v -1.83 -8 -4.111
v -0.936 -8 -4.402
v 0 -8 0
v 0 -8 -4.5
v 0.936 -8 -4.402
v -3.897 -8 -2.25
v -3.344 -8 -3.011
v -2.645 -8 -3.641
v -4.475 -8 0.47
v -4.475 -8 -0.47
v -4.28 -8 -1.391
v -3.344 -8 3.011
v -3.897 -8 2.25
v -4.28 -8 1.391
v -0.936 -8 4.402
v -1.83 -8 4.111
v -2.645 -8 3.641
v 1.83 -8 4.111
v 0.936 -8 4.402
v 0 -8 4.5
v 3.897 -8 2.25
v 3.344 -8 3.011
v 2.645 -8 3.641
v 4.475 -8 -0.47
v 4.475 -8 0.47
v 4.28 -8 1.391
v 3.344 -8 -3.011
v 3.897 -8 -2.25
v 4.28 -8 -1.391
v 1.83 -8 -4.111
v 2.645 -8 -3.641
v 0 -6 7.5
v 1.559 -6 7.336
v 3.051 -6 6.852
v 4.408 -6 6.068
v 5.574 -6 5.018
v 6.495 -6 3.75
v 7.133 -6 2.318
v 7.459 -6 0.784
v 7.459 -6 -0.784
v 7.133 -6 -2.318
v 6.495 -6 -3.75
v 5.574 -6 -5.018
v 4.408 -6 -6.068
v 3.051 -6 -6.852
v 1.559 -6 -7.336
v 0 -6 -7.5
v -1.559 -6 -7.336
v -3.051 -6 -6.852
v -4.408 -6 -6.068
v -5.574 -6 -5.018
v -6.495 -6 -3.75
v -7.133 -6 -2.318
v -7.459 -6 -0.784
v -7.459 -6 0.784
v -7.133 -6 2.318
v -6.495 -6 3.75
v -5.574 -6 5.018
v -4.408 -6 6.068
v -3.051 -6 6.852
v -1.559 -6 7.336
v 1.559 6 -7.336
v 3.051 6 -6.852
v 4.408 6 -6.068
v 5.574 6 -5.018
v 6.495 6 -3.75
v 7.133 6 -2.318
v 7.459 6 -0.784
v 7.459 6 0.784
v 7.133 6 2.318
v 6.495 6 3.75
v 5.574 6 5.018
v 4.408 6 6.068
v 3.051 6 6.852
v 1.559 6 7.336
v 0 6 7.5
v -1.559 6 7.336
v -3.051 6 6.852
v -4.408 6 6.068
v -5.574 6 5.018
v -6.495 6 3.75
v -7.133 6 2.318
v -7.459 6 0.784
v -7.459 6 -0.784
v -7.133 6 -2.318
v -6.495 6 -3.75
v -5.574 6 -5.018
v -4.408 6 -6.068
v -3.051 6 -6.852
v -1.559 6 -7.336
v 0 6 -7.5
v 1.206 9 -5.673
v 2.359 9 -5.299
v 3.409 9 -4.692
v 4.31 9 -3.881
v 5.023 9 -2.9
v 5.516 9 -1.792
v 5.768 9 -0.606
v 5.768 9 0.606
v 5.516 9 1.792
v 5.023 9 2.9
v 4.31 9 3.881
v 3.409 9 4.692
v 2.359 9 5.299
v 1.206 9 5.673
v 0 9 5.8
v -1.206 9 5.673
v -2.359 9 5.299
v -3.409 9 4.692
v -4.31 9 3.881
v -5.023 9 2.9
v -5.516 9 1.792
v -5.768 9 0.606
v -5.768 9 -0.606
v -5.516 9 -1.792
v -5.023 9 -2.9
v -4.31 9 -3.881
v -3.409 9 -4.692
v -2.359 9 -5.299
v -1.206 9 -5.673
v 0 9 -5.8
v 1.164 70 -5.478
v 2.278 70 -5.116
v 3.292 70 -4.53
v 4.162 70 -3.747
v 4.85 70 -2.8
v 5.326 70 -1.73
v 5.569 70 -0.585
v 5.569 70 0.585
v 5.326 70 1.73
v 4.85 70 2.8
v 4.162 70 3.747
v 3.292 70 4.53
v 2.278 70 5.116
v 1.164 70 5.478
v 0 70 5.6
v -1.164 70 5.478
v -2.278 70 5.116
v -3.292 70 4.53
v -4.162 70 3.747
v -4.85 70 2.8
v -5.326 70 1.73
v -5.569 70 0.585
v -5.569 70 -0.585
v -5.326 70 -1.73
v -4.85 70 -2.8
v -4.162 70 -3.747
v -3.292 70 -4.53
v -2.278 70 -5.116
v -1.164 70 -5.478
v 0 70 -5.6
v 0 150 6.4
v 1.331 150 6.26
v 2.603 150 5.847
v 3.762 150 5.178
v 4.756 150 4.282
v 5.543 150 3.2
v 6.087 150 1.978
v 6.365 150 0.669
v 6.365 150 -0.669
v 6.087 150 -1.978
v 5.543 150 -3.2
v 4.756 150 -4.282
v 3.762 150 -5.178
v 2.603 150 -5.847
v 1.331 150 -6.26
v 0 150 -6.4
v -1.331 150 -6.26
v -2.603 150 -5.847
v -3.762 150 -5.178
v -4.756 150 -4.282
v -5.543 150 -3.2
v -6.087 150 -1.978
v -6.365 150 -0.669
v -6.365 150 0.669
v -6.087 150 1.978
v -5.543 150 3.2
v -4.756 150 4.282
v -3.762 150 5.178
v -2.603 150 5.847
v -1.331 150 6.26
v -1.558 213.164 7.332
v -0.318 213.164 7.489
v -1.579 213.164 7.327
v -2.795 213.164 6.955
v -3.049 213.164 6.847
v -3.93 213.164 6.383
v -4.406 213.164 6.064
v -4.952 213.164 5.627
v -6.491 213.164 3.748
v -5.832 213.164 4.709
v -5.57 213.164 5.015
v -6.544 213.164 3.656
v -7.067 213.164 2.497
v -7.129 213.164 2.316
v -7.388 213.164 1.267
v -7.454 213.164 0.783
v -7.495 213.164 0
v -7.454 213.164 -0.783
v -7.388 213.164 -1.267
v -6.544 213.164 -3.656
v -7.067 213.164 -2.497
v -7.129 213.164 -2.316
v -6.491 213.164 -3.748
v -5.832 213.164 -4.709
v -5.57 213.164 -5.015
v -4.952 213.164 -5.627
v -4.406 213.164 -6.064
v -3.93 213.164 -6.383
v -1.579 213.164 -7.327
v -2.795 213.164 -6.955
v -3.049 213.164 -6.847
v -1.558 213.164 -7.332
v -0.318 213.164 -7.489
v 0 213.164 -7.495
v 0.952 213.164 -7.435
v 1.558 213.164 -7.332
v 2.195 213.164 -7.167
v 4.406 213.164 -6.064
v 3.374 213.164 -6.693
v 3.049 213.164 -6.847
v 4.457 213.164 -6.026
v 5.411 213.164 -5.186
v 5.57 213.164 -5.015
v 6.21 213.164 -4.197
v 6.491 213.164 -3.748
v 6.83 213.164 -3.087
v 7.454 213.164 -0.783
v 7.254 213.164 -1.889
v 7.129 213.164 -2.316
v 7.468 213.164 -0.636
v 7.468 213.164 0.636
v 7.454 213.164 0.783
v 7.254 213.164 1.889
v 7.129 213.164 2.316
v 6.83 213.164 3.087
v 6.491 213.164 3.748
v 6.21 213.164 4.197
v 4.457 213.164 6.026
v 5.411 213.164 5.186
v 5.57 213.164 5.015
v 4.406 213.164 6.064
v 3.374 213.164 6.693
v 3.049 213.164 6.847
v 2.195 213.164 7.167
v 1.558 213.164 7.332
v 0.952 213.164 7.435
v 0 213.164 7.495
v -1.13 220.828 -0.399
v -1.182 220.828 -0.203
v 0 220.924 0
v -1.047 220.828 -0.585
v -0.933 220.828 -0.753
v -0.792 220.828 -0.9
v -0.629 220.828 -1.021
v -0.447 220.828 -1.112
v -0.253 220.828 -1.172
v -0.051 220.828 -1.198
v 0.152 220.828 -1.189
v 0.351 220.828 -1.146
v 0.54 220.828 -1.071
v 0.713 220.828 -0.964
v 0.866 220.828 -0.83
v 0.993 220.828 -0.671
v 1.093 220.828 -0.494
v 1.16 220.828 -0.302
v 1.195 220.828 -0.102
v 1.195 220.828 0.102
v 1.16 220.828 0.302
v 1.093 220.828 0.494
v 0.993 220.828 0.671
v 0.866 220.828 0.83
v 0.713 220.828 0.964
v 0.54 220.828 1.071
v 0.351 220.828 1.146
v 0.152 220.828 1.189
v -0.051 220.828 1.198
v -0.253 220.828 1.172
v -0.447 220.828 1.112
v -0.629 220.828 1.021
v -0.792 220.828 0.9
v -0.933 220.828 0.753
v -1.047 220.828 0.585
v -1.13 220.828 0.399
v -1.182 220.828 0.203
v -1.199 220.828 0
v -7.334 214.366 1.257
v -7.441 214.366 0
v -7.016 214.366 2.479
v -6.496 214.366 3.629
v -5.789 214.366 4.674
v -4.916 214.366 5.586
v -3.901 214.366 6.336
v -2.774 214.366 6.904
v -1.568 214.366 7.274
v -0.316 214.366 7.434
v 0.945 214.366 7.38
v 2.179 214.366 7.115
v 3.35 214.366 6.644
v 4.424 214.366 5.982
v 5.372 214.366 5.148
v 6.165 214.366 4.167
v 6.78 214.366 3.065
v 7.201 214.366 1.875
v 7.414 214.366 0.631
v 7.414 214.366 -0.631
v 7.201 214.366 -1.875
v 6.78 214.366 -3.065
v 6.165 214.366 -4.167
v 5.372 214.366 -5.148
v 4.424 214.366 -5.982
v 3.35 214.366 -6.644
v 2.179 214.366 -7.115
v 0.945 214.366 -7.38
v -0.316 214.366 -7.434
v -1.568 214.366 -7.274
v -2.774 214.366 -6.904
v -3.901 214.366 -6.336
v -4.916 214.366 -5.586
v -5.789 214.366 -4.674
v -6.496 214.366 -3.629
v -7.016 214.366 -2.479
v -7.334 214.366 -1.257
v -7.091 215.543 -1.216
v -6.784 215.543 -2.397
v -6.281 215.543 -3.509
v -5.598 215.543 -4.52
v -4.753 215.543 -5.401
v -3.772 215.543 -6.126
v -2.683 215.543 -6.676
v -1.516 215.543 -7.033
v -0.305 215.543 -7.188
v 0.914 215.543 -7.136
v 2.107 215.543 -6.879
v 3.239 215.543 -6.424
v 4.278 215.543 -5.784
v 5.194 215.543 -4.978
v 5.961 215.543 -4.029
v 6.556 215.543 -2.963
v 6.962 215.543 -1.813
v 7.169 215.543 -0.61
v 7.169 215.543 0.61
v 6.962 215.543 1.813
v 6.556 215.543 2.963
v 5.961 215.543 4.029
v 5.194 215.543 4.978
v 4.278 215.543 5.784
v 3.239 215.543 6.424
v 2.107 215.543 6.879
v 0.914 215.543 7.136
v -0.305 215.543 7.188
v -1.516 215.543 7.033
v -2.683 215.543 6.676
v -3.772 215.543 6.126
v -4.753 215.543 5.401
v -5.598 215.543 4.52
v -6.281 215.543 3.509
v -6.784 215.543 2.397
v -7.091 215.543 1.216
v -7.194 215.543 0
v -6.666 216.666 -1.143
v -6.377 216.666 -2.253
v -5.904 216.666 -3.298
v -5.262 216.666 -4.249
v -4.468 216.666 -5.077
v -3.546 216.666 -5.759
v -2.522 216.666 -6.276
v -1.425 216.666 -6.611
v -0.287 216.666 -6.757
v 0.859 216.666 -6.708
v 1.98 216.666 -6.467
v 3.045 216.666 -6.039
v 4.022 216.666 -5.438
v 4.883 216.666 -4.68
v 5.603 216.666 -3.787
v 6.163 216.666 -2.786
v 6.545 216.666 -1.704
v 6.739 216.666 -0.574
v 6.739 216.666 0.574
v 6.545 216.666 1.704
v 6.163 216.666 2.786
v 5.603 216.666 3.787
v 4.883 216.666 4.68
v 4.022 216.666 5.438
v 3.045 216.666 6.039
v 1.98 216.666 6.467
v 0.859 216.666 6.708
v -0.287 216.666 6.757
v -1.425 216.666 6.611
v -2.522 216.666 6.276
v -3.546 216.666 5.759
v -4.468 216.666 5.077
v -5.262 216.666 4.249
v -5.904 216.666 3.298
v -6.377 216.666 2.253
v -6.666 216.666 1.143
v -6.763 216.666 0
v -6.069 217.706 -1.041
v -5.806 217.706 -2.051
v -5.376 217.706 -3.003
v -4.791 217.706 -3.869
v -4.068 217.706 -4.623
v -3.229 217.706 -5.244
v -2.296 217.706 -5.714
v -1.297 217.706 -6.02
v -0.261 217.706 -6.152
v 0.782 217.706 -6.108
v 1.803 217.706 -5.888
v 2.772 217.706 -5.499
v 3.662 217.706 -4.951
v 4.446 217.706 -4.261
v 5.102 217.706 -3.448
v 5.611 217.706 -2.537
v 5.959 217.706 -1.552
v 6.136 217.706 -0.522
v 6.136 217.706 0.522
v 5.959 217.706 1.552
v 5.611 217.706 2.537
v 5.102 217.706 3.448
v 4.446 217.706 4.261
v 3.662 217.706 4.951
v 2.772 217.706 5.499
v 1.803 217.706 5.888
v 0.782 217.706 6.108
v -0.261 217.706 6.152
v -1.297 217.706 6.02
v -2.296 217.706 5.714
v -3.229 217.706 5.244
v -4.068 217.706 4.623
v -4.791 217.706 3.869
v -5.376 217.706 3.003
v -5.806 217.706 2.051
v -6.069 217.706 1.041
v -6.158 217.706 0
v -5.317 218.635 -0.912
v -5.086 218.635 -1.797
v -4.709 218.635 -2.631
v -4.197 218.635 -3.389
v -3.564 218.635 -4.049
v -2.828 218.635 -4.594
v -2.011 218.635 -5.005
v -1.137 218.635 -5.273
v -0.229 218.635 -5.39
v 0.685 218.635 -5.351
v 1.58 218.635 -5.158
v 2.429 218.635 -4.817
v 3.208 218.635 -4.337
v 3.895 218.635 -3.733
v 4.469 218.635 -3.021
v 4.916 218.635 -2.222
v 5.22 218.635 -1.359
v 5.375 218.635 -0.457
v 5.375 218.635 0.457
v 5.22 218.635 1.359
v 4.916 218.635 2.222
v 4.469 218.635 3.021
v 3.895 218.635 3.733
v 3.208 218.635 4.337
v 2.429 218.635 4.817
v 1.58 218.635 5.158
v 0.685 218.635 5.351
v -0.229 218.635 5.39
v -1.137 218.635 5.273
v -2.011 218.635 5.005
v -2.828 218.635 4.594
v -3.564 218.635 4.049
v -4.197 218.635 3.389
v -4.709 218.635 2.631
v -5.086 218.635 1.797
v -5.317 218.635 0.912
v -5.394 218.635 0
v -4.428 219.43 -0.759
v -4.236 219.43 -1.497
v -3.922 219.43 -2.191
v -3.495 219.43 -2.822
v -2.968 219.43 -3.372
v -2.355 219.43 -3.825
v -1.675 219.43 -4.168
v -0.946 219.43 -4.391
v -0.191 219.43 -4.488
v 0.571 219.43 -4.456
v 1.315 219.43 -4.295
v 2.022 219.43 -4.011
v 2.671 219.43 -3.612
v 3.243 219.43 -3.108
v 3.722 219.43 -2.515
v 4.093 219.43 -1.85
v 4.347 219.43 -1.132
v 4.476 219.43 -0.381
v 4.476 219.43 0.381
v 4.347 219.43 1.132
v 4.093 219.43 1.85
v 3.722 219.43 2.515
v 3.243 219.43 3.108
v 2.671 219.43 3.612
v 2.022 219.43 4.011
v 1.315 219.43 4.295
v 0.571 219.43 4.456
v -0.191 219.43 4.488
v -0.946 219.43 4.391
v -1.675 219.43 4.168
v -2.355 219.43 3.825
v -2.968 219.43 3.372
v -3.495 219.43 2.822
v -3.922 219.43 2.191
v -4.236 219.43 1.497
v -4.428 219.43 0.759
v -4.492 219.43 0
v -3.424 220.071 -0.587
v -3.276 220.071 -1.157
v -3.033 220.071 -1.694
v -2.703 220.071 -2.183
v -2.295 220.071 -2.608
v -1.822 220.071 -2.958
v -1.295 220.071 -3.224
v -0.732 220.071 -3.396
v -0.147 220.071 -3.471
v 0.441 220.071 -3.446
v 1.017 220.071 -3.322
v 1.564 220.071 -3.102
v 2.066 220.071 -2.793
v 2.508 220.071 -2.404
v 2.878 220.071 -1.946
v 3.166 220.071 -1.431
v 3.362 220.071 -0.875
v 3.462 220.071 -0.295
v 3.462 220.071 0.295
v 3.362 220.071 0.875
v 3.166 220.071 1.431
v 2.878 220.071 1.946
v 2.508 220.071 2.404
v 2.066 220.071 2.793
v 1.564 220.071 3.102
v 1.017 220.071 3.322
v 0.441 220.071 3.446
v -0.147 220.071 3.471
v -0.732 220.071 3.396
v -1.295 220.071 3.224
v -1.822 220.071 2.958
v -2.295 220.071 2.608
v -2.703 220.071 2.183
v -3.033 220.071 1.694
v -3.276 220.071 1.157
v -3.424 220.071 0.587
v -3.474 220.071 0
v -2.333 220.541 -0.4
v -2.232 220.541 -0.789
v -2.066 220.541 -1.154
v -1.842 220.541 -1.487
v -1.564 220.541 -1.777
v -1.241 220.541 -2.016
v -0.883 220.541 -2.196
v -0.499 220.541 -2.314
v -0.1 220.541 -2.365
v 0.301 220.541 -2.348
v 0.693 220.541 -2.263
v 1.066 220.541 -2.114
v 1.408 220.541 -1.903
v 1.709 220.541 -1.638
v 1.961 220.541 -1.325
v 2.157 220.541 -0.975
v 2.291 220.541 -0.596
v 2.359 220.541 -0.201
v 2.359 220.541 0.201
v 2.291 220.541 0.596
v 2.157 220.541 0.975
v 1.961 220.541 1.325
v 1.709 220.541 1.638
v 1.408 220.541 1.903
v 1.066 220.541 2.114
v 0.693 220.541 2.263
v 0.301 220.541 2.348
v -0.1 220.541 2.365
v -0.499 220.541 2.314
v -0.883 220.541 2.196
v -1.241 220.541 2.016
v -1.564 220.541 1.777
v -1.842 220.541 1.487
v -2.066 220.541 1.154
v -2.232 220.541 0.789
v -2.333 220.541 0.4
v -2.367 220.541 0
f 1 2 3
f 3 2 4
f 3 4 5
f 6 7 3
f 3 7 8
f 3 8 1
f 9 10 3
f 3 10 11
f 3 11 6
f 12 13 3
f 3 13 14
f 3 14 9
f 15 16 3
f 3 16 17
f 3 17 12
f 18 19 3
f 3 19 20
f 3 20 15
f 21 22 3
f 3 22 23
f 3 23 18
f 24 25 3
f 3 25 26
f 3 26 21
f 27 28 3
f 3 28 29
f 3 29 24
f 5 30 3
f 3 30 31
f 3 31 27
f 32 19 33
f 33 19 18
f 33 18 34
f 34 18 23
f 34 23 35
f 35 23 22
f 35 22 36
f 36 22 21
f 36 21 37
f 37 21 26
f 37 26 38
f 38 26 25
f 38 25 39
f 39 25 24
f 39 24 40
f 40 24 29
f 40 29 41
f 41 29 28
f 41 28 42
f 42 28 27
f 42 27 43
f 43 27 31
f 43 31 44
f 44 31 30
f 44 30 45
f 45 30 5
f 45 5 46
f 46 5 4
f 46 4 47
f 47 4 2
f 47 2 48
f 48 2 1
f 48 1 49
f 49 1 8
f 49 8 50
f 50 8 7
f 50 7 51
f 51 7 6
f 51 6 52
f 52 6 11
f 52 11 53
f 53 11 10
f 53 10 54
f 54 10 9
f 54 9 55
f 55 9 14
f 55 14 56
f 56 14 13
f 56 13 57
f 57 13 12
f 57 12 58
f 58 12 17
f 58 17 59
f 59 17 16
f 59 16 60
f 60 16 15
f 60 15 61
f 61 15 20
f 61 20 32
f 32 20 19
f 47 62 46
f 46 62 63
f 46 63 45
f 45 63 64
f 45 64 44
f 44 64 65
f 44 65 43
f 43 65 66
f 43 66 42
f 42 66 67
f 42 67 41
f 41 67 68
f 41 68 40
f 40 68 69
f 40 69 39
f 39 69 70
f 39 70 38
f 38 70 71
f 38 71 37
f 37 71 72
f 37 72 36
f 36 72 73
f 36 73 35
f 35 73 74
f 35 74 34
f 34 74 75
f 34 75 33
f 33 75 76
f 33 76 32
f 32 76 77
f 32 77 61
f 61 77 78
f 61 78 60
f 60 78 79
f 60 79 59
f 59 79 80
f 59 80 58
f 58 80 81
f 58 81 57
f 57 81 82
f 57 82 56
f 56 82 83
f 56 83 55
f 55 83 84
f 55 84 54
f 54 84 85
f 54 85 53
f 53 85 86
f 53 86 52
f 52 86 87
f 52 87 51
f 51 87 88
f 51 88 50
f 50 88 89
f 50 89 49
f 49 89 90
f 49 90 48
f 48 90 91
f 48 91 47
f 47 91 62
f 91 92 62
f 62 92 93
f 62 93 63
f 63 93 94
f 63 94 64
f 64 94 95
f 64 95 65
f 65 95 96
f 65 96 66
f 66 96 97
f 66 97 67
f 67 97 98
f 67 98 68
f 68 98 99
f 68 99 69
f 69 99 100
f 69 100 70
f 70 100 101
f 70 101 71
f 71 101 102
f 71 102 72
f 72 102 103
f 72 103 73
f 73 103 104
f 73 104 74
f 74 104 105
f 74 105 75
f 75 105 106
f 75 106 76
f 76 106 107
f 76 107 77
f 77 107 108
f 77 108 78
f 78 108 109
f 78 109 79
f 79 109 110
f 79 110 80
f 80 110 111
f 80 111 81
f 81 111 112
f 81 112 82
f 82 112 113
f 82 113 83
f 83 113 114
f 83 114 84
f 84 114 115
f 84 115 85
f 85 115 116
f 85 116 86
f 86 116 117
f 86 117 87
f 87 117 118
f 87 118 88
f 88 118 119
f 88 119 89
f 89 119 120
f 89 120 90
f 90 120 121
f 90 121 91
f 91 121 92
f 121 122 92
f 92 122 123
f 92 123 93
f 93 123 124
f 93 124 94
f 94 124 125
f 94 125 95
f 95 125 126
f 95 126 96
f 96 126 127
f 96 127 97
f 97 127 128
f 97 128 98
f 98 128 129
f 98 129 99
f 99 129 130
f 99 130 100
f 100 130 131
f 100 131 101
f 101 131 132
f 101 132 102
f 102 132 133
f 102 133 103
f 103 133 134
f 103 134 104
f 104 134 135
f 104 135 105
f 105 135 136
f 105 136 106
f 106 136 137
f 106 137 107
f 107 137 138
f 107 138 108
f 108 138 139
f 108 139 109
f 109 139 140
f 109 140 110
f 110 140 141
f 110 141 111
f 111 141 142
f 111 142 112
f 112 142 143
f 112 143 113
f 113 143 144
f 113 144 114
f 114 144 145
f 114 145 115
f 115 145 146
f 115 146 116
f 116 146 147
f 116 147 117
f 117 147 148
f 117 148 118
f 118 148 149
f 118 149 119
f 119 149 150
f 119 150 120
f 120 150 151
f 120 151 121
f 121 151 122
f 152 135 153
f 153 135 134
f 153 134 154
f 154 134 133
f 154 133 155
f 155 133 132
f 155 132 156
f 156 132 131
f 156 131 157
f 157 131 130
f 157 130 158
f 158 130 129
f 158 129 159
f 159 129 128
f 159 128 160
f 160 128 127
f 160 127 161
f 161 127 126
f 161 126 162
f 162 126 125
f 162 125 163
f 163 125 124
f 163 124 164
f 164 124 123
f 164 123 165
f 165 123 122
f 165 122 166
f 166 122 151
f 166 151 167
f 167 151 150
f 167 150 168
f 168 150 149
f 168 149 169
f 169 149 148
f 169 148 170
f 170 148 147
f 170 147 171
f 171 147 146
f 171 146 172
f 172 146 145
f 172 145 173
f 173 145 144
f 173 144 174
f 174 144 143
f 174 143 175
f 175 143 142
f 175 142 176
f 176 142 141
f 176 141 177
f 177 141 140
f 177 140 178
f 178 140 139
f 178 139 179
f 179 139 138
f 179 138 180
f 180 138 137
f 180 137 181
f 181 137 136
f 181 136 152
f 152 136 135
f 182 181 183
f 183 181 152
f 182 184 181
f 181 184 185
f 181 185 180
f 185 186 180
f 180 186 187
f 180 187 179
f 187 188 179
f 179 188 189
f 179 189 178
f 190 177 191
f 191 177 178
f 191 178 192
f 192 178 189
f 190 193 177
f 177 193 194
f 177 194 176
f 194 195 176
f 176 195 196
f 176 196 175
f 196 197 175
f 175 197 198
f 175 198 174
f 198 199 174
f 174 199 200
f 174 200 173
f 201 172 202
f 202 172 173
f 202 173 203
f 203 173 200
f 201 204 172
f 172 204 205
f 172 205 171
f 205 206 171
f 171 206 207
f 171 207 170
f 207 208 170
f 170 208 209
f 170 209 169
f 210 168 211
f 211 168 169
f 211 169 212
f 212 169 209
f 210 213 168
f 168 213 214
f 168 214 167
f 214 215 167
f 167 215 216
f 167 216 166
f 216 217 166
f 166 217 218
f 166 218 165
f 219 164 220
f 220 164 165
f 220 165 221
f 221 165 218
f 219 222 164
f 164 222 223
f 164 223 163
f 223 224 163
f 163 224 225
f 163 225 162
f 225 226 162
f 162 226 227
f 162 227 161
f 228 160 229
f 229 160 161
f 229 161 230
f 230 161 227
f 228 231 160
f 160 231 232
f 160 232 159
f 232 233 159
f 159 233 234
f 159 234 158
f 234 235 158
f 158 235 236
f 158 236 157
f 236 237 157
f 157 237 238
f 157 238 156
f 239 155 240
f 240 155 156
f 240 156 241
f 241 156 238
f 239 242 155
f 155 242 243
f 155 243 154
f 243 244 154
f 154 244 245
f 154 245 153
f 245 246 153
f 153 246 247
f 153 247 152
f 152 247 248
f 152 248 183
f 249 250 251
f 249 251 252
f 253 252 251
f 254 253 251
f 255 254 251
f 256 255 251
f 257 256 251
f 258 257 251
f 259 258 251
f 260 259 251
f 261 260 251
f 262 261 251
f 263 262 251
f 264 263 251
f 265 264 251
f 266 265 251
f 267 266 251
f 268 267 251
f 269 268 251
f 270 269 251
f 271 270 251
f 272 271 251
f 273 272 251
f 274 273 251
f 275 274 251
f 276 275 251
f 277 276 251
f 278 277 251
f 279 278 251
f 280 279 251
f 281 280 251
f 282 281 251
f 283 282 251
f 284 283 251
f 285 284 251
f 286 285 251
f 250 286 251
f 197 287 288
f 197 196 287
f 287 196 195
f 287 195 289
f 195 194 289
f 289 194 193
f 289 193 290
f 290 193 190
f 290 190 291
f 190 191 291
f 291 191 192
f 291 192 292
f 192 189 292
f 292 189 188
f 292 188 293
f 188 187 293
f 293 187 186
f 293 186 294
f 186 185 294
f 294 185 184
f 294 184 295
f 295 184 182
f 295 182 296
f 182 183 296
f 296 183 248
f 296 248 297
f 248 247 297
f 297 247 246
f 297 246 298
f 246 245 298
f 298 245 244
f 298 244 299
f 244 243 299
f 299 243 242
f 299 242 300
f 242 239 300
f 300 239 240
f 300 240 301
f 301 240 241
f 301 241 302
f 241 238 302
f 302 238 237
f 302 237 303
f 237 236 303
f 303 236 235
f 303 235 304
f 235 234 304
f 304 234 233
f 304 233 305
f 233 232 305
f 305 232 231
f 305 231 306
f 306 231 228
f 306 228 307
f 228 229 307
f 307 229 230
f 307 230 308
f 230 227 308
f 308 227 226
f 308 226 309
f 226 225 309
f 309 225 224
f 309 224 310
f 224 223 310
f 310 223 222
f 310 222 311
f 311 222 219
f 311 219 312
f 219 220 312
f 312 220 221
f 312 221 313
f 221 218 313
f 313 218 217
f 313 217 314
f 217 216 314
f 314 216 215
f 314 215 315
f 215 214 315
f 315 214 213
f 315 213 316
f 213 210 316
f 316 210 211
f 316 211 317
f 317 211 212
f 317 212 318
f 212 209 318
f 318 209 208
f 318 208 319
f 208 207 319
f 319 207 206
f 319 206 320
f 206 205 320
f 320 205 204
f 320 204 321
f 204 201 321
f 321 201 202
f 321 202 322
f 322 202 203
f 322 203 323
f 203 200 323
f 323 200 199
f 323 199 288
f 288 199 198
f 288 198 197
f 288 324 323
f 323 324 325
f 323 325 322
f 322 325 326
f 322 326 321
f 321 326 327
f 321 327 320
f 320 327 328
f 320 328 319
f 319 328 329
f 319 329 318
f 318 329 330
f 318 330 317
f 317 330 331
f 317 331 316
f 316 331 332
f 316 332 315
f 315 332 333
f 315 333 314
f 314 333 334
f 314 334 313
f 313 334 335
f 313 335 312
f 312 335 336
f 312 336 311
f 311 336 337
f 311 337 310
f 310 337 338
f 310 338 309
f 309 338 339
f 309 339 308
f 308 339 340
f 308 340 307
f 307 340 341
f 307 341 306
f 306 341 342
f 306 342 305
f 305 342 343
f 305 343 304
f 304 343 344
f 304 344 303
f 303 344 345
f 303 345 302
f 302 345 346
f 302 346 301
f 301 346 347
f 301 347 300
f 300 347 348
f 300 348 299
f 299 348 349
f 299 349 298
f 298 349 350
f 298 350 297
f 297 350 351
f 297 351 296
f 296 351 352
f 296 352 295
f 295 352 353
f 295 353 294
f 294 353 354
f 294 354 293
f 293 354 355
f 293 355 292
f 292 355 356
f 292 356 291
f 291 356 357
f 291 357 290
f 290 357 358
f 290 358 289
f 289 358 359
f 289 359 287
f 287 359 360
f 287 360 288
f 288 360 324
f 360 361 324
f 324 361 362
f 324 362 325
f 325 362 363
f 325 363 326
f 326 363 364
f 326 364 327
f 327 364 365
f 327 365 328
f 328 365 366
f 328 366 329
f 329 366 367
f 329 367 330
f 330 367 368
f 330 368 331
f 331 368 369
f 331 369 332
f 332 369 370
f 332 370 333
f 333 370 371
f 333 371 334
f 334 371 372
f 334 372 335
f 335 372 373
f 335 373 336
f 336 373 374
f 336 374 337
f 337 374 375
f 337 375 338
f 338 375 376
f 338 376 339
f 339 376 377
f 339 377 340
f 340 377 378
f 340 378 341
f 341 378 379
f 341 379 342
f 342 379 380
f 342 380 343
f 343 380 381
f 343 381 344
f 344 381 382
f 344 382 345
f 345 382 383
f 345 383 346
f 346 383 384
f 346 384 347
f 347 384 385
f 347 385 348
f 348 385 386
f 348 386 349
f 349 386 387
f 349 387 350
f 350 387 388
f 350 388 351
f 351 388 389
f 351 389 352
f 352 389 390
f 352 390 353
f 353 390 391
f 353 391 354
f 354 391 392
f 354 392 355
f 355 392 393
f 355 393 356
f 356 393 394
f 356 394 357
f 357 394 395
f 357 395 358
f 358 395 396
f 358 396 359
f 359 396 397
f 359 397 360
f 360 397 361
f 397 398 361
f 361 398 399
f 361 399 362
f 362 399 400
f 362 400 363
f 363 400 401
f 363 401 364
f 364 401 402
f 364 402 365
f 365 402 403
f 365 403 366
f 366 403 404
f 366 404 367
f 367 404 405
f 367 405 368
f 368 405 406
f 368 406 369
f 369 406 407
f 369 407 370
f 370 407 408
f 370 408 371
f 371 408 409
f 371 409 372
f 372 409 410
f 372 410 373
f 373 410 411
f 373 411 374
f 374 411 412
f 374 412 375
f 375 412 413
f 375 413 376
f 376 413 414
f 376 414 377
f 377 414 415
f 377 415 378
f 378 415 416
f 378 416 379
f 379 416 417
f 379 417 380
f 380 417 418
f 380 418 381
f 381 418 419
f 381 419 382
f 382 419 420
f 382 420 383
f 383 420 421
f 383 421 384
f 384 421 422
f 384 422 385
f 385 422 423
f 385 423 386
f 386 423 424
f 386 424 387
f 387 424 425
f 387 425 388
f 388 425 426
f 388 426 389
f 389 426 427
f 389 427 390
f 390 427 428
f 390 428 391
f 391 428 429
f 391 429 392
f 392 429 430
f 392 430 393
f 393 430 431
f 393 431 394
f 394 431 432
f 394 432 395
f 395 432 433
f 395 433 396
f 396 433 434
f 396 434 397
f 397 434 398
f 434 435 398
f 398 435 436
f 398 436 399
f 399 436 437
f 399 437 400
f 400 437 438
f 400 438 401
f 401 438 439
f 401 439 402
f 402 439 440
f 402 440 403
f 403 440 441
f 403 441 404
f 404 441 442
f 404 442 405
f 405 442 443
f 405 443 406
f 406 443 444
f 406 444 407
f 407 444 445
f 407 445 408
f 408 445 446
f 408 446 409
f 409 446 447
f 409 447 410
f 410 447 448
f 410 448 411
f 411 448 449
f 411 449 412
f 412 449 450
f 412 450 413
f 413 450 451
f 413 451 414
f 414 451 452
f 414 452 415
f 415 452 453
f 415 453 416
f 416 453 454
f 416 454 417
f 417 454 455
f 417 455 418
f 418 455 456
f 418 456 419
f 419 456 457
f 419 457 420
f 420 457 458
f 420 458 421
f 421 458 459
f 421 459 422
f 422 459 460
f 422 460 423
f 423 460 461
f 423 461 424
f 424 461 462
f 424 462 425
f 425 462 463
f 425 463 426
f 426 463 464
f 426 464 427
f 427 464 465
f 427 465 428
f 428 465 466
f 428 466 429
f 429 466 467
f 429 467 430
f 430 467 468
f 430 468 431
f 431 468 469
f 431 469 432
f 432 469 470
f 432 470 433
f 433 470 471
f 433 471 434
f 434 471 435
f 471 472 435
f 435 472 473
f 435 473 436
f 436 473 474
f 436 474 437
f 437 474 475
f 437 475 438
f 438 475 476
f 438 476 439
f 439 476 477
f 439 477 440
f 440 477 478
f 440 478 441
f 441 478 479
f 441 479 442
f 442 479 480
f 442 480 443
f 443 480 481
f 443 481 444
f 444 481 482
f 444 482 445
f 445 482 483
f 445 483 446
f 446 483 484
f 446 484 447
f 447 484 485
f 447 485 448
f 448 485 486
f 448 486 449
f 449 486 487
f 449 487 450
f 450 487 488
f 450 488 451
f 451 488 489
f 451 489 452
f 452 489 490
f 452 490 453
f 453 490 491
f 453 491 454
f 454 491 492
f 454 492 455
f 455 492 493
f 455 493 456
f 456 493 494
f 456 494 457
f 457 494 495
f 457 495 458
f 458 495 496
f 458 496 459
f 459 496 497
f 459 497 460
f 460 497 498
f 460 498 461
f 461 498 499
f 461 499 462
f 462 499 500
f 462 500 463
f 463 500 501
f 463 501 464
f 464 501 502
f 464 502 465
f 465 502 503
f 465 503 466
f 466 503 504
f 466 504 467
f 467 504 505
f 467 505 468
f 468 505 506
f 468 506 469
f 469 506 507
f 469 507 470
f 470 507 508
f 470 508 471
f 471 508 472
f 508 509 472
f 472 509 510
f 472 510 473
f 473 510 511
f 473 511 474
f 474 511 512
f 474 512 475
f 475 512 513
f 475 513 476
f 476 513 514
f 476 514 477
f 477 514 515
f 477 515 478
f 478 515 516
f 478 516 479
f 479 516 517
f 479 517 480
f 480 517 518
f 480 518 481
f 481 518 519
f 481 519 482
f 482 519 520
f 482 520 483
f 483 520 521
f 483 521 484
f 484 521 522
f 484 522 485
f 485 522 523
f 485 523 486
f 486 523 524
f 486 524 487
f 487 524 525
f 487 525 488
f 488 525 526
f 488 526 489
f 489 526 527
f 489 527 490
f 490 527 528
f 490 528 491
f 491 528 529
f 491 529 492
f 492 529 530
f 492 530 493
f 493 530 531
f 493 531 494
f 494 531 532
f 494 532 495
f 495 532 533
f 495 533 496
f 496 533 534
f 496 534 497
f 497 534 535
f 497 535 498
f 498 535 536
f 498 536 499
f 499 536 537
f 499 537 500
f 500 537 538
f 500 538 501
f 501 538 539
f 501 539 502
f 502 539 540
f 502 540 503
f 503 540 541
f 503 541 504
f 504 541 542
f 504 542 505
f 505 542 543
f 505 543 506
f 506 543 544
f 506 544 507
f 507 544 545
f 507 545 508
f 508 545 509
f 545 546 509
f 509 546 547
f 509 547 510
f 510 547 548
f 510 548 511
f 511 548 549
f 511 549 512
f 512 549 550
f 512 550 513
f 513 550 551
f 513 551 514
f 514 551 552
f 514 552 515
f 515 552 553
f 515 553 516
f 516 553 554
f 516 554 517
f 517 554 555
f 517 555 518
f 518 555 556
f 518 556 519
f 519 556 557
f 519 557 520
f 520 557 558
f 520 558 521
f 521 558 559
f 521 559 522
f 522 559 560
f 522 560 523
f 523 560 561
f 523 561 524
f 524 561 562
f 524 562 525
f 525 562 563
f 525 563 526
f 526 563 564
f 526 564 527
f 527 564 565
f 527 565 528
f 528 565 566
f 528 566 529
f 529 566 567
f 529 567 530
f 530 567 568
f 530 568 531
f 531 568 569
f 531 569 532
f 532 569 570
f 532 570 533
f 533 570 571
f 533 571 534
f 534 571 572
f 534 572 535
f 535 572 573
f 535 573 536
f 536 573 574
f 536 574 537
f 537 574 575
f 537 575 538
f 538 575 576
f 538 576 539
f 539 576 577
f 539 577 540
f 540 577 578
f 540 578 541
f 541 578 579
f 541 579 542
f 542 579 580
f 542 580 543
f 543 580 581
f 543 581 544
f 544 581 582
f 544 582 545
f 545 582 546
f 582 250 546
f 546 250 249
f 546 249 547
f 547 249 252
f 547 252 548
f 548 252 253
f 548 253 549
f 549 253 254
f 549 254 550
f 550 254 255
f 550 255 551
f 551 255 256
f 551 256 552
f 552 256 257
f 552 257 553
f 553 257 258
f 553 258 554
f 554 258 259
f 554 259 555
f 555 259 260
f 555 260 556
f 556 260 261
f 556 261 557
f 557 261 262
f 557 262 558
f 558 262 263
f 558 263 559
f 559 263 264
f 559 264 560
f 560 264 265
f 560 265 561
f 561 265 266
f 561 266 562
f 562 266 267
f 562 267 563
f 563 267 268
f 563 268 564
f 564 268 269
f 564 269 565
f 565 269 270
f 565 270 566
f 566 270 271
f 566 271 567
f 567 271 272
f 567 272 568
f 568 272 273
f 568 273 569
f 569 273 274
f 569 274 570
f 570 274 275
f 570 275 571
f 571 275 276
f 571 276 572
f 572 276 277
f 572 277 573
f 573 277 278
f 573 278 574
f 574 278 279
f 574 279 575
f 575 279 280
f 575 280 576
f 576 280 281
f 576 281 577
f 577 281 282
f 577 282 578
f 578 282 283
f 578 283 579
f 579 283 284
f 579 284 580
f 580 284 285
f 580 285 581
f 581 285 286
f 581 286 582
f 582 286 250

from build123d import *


with BuildPart() as part:
    # Sketch1 → Diafisis_y_cabeza (revolve)
    with BuildSketch(Plane.XY, mode=Mode.PRIVATE) as diafisis_y_cabeza_sk:
        Polygon((0, -8), (4.5, -8), (7.5, -6), (7.5, 6), (5.8, 9), (5.6, 70), (6.4, 150), (7.5, 213.424459704), (0, 213.424459704), align=None)
    revolve(diafisis_y_cabeza_sk.sketch.rotate(Axis((0, -12, 0), (0, 1, 0)), 90), axis=Axis((0, -12, 0), (0, 1, 0)))

    # Sketch2 → Extremo_proximal (revolve)
    with BuildSketch(Plane.XY):
        with BuildLine():
            Line((0, 205.924459704), (0, 220.924459704))
            ThreePointArc((0, 220.924459704), (7.5, 213.424459704), (0, 205.924459704))
        make_face()
    revolve(axis=Axis((0, 201.924459704, 0), (0, 1, 0)))


solid = part.part
